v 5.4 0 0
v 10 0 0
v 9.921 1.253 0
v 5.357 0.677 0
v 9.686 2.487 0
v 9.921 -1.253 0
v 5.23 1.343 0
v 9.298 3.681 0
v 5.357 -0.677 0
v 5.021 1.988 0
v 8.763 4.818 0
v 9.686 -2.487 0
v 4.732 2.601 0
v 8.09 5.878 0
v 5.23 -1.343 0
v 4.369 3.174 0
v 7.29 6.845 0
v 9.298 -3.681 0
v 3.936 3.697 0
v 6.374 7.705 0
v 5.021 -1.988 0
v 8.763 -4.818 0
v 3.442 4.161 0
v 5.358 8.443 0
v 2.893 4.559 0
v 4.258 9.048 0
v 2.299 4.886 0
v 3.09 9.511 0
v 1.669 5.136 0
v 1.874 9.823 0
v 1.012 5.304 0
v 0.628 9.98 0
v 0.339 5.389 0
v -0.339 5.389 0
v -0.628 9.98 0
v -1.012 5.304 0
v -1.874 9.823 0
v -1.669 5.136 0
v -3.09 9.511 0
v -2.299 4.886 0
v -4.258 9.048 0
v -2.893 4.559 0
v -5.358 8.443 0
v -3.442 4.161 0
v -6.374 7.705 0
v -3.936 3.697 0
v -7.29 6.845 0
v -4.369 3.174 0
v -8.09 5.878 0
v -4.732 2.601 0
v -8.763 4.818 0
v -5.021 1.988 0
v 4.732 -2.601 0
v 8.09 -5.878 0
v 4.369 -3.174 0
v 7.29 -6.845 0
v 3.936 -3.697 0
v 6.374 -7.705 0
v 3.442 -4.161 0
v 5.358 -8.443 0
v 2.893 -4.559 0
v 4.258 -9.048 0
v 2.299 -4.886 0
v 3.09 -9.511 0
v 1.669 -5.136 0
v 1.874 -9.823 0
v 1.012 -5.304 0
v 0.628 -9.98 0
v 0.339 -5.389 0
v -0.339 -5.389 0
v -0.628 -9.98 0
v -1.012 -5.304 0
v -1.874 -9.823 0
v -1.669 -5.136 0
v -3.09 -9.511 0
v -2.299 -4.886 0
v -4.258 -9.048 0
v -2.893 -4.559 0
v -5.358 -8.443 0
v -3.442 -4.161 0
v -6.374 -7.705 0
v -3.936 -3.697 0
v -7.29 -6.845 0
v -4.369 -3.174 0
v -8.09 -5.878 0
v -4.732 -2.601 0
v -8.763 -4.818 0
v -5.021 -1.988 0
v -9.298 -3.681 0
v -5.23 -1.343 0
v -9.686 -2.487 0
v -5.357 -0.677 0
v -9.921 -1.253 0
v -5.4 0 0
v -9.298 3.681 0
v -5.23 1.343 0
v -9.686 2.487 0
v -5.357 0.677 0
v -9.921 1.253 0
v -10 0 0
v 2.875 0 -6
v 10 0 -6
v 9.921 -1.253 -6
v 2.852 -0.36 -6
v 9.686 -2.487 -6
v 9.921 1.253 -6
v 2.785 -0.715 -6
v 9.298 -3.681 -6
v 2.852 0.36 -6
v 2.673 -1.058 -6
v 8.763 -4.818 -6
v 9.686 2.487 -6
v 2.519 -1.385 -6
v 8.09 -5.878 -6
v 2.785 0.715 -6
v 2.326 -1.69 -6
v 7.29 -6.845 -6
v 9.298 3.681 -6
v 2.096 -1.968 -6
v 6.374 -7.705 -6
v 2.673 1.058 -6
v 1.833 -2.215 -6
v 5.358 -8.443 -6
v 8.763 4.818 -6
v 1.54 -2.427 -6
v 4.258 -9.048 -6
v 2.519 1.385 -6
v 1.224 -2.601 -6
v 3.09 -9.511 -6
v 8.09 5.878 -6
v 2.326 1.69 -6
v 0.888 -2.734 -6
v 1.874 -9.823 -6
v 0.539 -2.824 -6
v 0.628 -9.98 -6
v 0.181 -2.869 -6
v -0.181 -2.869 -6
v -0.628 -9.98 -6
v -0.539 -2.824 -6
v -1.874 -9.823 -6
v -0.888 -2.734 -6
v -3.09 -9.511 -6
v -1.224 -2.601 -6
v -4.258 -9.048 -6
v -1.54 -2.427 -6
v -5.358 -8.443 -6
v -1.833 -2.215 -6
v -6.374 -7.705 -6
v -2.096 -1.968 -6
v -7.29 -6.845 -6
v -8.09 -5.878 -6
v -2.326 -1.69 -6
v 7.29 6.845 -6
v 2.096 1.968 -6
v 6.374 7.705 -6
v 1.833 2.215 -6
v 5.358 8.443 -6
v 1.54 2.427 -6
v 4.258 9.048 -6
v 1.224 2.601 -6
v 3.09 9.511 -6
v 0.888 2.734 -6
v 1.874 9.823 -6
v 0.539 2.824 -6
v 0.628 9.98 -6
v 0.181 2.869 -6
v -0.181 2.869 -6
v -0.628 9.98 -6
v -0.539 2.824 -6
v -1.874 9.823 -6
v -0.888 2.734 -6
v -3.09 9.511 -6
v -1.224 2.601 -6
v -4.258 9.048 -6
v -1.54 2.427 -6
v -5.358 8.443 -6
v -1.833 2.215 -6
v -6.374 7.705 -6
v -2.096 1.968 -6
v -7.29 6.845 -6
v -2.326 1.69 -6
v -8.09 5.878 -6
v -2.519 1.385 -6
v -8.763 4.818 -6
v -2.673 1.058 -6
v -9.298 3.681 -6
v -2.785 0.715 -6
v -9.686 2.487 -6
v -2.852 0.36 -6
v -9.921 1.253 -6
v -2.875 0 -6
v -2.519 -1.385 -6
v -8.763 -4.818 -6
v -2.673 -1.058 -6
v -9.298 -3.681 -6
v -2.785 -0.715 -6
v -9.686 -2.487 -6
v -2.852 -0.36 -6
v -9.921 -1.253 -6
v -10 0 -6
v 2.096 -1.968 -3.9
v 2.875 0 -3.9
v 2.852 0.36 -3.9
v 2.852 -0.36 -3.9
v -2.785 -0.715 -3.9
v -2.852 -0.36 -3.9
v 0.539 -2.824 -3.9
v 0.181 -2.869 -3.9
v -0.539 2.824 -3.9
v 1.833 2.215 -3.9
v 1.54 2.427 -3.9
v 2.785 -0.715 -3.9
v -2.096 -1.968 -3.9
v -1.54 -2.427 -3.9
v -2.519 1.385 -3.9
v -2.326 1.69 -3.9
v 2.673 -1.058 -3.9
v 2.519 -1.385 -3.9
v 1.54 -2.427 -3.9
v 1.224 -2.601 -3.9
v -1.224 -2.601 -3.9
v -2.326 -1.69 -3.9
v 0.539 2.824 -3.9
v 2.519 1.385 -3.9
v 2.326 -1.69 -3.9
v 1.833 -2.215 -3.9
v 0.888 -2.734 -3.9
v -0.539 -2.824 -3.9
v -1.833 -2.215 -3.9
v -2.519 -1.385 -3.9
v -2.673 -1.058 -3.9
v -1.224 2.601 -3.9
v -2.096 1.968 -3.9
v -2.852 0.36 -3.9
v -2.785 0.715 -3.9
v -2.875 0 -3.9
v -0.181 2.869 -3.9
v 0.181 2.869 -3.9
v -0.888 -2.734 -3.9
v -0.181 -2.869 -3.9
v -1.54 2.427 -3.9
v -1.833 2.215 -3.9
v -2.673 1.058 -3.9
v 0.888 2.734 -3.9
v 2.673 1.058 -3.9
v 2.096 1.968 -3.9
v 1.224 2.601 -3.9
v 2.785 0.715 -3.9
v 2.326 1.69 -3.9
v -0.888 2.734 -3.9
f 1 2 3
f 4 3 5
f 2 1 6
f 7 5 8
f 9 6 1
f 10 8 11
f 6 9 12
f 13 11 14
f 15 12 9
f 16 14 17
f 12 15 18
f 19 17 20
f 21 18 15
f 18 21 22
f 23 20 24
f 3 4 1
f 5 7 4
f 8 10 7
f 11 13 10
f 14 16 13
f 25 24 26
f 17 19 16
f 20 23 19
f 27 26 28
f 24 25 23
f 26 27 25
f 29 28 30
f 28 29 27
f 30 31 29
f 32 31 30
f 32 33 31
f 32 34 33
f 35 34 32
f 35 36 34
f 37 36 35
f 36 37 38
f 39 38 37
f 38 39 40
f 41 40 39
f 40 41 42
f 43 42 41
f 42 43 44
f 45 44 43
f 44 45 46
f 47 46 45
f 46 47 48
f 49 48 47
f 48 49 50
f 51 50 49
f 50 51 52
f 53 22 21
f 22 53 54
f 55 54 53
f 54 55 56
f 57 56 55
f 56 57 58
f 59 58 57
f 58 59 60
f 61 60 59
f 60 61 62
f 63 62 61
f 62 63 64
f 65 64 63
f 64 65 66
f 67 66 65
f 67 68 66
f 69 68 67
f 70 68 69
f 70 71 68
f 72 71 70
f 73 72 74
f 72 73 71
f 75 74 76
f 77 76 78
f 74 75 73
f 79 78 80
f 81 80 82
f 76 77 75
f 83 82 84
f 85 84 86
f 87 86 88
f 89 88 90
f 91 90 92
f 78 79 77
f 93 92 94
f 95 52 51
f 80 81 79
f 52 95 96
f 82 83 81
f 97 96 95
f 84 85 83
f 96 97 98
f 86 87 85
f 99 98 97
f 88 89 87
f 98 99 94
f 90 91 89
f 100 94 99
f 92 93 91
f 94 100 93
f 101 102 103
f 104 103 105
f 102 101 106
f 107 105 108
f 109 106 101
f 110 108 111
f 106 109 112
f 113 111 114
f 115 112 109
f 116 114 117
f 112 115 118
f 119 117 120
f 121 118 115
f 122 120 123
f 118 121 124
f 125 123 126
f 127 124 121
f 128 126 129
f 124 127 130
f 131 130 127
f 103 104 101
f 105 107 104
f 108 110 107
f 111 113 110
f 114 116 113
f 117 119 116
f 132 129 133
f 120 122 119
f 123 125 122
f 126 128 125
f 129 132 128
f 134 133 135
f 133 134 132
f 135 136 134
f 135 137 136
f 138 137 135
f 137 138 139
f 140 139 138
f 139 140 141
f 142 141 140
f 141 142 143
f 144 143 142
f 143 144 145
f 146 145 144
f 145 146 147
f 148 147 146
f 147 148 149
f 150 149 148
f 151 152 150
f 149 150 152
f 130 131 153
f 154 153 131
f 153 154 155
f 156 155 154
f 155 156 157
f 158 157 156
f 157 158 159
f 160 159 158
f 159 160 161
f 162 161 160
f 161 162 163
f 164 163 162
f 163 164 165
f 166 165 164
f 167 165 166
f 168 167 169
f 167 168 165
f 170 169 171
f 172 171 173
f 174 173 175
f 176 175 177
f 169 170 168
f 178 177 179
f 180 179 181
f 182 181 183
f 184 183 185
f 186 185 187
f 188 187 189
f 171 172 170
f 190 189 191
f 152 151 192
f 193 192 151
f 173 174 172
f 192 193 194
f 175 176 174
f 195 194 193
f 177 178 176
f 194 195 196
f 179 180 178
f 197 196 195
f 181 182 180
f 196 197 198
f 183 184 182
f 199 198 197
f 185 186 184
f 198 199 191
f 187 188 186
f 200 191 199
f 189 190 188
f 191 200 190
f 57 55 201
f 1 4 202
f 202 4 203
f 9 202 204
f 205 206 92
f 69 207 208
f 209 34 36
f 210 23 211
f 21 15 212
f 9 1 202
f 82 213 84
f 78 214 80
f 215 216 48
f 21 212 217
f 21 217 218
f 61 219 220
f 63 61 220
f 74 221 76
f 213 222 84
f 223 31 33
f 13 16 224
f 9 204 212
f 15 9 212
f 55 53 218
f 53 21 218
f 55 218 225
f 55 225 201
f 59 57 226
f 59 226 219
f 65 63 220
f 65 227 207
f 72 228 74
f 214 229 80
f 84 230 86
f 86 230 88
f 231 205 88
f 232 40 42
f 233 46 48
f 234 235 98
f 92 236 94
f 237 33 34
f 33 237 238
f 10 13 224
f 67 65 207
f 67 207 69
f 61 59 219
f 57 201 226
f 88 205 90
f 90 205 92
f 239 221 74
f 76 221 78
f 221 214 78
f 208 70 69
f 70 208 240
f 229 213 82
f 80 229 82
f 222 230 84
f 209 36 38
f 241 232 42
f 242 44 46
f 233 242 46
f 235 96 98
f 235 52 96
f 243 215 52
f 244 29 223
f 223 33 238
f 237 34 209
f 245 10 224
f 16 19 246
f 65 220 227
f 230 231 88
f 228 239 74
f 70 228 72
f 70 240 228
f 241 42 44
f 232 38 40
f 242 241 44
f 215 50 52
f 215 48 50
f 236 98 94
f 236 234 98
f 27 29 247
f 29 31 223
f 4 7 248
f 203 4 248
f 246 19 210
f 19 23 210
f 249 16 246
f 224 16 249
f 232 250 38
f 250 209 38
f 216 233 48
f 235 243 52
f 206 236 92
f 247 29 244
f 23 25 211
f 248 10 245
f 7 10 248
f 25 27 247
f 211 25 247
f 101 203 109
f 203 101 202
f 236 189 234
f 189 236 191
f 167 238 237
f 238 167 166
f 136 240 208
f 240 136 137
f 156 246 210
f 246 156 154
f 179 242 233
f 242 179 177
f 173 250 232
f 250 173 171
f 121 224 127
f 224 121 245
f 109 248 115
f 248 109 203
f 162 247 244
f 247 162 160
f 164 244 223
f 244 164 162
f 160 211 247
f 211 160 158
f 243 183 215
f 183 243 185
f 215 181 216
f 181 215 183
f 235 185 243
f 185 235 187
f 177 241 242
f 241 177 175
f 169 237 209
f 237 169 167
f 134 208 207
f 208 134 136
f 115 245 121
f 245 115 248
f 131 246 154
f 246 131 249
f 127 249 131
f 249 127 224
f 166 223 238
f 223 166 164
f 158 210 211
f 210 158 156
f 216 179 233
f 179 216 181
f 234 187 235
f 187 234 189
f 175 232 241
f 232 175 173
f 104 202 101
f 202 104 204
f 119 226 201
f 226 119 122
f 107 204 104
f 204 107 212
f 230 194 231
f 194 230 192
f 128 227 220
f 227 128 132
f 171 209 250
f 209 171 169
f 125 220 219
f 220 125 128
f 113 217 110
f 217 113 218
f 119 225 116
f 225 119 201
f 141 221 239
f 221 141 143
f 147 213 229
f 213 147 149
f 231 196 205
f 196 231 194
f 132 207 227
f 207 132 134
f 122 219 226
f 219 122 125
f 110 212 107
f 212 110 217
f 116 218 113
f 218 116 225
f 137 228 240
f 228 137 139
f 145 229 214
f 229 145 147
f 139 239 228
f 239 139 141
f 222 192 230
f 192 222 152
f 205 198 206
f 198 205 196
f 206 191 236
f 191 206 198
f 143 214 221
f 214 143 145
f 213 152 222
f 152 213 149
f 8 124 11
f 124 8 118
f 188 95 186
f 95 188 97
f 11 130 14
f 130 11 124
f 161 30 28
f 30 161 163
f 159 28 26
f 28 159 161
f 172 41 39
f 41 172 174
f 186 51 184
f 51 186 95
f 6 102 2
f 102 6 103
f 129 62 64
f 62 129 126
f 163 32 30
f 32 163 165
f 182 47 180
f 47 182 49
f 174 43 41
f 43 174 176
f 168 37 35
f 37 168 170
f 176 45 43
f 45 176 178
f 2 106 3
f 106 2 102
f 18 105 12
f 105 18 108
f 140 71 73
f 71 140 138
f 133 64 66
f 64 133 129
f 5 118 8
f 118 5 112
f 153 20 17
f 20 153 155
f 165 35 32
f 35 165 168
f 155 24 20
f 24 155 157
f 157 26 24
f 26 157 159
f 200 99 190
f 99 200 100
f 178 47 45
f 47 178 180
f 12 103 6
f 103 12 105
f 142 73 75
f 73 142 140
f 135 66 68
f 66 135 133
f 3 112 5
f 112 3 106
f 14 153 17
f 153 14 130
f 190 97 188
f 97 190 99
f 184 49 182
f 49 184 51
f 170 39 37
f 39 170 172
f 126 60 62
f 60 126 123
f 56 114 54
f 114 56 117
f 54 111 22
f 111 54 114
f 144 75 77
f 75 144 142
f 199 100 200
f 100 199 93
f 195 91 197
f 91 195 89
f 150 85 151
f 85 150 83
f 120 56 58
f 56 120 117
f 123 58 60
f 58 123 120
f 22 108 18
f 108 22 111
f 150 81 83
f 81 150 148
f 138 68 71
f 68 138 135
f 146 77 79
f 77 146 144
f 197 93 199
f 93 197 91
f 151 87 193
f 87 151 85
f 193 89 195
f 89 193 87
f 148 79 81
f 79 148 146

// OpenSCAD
$fn = 50;


difference() {
	union() {
		translate(v = [0, 0, -6.0000000000]) {
			cylinder(h = 6, r = 10.0000000000);
		}
		cylinder(h = 0, r = 19.0000000000);
	}
	union() {
		translate(v = [0, 0, 0]) {
			rotate(a = [0, 0, 0]) {
				difference() {
					union() {
						#translate(v = [0, 0, -6.0000000000]) {
							cylinder(h = 6, r = 2.6000000000);
						}
						#translate(v = [0, 0, -3.9000000000]) {
							cylinder(h = 3.9000000000, r = 10.0000000000, r1 = 2.8750000000, r2 = 5.4000000000);
						}
						#translate(v = [0, 0, -6.0000000000]) {
							cylinder(h = 6, r = 2.8750000000);
						}
						#translate(v = [0, 0, -6.0000000000]) {
							cylinder(h = 6, r = 2.6000000000);
						}
					}
					union();
				}
			}
		}
	}
}
